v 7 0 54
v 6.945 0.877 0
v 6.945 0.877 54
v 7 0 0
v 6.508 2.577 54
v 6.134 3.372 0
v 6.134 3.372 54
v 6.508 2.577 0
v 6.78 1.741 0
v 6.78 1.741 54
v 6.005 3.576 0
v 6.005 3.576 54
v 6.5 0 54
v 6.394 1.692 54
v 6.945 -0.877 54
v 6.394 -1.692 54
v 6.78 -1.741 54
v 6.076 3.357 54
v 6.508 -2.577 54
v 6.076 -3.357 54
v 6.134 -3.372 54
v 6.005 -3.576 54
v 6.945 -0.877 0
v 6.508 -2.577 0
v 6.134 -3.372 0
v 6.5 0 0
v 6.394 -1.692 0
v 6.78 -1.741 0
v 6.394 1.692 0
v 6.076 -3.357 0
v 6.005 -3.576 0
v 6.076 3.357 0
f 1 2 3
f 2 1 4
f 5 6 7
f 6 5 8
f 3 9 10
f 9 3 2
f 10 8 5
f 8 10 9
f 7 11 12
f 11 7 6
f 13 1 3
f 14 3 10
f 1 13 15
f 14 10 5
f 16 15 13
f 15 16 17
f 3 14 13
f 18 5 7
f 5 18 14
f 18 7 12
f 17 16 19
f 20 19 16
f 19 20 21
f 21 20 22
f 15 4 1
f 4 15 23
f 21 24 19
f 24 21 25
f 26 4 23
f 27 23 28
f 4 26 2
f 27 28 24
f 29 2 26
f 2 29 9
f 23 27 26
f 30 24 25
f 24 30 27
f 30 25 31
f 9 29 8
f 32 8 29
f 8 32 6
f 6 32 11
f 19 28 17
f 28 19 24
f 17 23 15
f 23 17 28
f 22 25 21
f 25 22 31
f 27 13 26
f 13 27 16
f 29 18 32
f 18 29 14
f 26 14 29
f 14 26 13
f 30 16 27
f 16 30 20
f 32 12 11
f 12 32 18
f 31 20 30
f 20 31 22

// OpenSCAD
$fn = 50;


difference() {
	union() {
		cylinder(h = 54, r = 7.0000000000);
		translate(v = [-10.0000000000, 0, 0]) {
			cylinder(h = 54, r = 7.0000000000);
		}
	}
	union() {
		cylinder(h = 54, r = 3.2500000000);
		cylinder(h = 54, r = 1.8000000000);
		cylinder(h = 54, r = 1.8000000000);
		cylinder(h = 54, r = 1.8000000000);
		translate(v = [-14.5000000000, 0, 0]) {
			hull() {
				translate(v = [-3.7500000000, 0.0000000000, 0]) {
					cylinder(h = 54, r = 10.5000000000);
				}
				translate(v = [3.7500000000, 0.0000000000, 0]) {
					cylinder(h = 54, r = 10.5000000000);
				}
				translate(v = [-3.7500000000, -0.0000000000, 0]) {
					cylinder(h = 54, r = 10.5000000000);
				}
				translate(v = [3.7500000000, -0.0000000000, 0]) {
					cylinder(h = 54, r = 10.5000000000);
				}
			}
		}
		translate(v = [-7.0000000000, 0, 0.0000000000]) {
			cylinder(h = 54, r = 13.5000000000);
		}
	}
}
